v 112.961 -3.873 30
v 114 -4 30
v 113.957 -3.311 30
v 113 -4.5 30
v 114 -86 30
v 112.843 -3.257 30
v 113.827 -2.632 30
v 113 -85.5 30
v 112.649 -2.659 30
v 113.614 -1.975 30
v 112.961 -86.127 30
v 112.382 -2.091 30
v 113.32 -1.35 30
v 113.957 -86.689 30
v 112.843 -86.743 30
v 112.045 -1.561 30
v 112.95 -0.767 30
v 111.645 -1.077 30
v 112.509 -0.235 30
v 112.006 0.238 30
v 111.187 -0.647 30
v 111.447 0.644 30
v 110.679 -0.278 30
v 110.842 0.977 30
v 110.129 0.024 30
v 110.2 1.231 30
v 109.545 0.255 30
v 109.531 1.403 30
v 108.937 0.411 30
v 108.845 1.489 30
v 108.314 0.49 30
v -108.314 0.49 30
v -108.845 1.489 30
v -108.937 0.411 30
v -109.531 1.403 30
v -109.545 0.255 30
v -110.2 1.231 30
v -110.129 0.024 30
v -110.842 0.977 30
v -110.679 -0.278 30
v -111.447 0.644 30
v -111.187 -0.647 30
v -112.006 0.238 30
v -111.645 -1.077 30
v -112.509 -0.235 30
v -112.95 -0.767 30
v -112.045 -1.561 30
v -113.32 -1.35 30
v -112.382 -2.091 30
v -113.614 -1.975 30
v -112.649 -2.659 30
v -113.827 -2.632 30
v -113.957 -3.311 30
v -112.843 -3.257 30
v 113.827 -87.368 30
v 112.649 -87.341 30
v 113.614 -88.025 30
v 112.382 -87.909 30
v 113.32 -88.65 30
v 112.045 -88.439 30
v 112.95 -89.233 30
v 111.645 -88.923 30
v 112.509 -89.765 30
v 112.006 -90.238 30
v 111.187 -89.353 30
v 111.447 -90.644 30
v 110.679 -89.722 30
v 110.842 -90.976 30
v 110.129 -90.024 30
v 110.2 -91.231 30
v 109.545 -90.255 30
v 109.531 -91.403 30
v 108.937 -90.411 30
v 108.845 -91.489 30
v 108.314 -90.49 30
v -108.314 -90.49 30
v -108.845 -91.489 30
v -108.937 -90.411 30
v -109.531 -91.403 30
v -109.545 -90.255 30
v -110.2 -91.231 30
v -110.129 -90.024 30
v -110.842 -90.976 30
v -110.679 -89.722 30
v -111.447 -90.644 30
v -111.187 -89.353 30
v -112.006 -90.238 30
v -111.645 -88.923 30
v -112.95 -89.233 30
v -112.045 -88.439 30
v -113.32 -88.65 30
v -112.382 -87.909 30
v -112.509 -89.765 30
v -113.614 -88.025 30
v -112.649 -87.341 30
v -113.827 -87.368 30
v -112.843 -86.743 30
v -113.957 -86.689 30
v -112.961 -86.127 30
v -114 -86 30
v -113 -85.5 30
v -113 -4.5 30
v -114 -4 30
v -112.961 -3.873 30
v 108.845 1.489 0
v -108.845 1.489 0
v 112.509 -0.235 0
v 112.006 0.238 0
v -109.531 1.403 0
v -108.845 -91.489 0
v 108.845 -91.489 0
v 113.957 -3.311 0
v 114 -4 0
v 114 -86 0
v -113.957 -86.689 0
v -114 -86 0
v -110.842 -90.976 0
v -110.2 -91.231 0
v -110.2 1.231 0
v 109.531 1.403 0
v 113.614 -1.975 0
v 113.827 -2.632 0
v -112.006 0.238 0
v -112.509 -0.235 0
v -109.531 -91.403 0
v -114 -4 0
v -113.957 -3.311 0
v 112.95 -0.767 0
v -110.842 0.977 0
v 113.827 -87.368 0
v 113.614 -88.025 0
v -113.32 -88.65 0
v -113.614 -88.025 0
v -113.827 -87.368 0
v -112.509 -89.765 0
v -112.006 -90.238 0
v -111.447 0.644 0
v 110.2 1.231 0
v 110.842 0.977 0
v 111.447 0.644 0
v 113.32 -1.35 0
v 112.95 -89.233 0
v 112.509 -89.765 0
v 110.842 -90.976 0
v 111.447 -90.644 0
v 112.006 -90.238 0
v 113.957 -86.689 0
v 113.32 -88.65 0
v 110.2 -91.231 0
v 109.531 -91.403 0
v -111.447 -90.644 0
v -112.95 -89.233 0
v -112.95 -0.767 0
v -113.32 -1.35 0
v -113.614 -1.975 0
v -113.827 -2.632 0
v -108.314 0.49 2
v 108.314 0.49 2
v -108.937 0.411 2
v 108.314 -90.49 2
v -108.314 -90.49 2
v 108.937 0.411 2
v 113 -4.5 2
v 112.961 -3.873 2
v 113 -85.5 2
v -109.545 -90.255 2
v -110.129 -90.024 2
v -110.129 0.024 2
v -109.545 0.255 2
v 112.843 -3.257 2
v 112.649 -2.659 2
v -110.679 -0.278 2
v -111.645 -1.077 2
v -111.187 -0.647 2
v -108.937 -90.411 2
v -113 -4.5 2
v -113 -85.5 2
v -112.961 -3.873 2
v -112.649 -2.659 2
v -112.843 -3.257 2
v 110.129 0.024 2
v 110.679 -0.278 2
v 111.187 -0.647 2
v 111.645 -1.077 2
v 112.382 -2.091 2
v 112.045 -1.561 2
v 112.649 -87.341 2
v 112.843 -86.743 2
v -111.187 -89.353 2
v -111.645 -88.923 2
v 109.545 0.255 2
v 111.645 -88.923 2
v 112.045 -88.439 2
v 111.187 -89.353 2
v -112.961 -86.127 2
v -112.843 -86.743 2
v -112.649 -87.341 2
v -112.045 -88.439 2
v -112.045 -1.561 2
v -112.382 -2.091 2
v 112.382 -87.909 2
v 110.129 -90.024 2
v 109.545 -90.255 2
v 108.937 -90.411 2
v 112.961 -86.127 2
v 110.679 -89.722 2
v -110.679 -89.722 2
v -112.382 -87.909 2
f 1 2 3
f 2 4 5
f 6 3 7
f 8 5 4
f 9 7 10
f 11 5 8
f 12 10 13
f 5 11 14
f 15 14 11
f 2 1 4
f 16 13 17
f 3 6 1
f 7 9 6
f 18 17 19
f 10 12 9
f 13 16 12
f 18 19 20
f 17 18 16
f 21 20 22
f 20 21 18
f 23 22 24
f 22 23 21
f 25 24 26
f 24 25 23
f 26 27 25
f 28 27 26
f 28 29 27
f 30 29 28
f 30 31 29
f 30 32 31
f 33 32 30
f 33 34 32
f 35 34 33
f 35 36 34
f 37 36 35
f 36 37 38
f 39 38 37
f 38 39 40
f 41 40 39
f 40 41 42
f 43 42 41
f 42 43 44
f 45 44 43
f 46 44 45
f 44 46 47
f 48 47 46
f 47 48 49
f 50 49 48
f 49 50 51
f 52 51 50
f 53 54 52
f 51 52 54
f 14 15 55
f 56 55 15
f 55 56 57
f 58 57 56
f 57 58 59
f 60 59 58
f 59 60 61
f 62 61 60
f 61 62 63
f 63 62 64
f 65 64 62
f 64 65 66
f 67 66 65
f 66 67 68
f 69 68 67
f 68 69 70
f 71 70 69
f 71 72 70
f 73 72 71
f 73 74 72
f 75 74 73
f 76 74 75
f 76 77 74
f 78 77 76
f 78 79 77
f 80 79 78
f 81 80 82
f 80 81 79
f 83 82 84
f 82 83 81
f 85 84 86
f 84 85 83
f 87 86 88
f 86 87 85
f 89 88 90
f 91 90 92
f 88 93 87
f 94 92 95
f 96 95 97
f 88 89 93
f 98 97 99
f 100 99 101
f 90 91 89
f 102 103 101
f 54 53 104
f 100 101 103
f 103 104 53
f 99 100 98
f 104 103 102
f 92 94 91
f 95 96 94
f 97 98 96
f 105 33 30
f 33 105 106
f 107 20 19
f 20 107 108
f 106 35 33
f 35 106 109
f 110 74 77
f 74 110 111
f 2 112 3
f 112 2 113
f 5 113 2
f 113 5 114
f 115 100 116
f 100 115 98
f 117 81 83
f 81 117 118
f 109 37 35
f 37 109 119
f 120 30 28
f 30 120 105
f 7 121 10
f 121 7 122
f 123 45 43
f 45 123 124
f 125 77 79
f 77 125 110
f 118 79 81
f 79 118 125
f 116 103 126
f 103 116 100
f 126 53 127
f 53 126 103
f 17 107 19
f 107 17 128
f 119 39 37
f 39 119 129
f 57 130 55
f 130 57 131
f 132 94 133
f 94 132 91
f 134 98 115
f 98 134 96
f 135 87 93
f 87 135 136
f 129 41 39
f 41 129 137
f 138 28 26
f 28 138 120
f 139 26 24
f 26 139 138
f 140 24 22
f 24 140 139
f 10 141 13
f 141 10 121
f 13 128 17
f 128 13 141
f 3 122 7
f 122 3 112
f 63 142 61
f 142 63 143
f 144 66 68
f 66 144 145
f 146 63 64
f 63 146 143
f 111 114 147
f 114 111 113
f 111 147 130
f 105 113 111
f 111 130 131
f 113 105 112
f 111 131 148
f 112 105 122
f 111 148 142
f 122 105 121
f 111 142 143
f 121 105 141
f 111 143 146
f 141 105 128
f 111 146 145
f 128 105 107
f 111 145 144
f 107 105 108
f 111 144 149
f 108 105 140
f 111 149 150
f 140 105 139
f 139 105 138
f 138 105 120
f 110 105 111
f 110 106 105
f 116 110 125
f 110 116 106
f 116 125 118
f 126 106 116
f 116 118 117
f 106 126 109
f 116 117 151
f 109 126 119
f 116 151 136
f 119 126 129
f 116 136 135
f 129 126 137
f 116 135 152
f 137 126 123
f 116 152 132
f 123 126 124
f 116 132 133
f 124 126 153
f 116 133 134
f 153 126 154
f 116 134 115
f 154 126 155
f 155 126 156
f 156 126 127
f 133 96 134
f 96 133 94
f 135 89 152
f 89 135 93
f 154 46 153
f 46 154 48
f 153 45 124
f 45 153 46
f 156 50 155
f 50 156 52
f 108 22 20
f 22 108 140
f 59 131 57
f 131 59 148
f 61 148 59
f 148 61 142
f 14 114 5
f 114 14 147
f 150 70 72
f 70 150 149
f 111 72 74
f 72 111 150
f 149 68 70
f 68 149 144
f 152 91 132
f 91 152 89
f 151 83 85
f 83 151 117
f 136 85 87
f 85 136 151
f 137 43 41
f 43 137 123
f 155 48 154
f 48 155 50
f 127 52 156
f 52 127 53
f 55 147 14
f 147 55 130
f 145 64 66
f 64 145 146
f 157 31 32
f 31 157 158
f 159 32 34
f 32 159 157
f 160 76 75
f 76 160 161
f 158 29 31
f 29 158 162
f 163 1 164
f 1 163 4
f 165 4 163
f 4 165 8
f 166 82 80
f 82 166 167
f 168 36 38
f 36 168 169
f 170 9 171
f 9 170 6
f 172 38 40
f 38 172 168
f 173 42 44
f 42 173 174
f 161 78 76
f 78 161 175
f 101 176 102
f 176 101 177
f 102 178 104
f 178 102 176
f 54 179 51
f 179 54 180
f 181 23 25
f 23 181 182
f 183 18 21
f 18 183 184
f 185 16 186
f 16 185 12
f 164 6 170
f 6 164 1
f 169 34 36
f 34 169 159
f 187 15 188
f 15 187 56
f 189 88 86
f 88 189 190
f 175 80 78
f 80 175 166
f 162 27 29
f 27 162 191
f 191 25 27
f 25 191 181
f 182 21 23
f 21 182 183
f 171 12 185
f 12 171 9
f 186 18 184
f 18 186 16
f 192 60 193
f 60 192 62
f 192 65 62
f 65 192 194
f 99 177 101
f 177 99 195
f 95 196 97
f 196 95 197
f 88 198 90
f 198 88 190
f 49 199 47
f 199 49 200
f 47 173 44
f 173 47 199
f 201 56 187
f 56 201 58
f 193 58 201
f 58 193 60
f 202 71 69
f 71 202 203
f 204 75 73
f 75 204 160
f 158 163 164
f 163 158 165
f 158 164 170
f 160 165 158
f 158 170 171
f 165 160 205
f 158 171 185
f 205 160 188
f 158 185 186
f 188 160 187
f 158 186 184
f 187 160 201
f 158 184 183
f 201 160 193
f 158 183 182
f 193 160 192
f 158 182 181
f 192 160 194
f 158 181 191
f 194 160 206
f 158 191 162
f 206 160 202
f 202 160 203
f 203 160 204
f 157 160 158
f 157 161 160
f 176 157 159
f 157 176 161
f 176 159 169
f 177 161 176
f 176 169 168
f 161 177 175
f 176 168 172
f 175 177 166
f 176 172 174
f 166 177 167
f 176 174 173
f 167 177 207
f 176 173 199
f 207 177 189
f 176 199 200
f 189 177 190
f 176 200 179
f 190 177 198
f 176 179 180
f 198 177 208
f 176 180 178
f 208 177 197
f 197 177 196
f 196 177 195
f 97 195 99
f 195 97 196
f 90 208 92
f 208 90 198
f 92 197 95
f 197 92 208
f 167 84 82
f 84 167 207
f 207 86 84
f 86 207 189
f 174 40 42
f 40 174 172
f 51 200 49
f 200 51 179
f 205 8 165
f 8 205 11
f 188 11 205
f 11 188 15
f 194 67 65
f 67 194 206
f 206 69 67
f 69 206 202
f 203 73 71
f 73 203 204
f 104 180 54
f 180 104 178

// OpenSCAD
$fn = 50;


difference() {
	union() {
		translate(v = [0, -45.0000000000, 0]) {
			hull() {
				translate(v = [-108.5000000000, 41.0000000000, 0]) {
					cylinder(h = 30, r = 5.5000000000);
				}
				translate(v = [108.5000000000, 41.0000000000, 0]) {
					cylinder(h = 30, r = 5.5000000000);
				}
				translate(v = [-108.5000000000, -41.0000000000, 0]) {
					cylinder(h = 30, r = 5.5000000000);
				}
				translate(v = [108.5000000000, -41.0000000000, 0]) {
					cylinder(h = 30, r = 5.5000000000);
				}
			}
		}
	}
	union() {
		translate(v = [0, -45.0000000000, 2]) {
			hull() {
				translate(v = [-108.0000000000, 40.5000000000, 0]) {
					cylinder(h = 60, r = 5);
				}
				translate(v = [108.0000000000, 40.5000000000, 0]) {
					cylinder(h = 60, r = 5);
				}
				translate(v = [-108.0000000000, -40.5000000000, 0]) {
					cylinder(h = 60, r = 5);
				}
				translate(v = [108.0000000000, -40.5000000000, 0]) {
					cylinder(h = 60, r = 5);
				}
			}
		}
	}
}
